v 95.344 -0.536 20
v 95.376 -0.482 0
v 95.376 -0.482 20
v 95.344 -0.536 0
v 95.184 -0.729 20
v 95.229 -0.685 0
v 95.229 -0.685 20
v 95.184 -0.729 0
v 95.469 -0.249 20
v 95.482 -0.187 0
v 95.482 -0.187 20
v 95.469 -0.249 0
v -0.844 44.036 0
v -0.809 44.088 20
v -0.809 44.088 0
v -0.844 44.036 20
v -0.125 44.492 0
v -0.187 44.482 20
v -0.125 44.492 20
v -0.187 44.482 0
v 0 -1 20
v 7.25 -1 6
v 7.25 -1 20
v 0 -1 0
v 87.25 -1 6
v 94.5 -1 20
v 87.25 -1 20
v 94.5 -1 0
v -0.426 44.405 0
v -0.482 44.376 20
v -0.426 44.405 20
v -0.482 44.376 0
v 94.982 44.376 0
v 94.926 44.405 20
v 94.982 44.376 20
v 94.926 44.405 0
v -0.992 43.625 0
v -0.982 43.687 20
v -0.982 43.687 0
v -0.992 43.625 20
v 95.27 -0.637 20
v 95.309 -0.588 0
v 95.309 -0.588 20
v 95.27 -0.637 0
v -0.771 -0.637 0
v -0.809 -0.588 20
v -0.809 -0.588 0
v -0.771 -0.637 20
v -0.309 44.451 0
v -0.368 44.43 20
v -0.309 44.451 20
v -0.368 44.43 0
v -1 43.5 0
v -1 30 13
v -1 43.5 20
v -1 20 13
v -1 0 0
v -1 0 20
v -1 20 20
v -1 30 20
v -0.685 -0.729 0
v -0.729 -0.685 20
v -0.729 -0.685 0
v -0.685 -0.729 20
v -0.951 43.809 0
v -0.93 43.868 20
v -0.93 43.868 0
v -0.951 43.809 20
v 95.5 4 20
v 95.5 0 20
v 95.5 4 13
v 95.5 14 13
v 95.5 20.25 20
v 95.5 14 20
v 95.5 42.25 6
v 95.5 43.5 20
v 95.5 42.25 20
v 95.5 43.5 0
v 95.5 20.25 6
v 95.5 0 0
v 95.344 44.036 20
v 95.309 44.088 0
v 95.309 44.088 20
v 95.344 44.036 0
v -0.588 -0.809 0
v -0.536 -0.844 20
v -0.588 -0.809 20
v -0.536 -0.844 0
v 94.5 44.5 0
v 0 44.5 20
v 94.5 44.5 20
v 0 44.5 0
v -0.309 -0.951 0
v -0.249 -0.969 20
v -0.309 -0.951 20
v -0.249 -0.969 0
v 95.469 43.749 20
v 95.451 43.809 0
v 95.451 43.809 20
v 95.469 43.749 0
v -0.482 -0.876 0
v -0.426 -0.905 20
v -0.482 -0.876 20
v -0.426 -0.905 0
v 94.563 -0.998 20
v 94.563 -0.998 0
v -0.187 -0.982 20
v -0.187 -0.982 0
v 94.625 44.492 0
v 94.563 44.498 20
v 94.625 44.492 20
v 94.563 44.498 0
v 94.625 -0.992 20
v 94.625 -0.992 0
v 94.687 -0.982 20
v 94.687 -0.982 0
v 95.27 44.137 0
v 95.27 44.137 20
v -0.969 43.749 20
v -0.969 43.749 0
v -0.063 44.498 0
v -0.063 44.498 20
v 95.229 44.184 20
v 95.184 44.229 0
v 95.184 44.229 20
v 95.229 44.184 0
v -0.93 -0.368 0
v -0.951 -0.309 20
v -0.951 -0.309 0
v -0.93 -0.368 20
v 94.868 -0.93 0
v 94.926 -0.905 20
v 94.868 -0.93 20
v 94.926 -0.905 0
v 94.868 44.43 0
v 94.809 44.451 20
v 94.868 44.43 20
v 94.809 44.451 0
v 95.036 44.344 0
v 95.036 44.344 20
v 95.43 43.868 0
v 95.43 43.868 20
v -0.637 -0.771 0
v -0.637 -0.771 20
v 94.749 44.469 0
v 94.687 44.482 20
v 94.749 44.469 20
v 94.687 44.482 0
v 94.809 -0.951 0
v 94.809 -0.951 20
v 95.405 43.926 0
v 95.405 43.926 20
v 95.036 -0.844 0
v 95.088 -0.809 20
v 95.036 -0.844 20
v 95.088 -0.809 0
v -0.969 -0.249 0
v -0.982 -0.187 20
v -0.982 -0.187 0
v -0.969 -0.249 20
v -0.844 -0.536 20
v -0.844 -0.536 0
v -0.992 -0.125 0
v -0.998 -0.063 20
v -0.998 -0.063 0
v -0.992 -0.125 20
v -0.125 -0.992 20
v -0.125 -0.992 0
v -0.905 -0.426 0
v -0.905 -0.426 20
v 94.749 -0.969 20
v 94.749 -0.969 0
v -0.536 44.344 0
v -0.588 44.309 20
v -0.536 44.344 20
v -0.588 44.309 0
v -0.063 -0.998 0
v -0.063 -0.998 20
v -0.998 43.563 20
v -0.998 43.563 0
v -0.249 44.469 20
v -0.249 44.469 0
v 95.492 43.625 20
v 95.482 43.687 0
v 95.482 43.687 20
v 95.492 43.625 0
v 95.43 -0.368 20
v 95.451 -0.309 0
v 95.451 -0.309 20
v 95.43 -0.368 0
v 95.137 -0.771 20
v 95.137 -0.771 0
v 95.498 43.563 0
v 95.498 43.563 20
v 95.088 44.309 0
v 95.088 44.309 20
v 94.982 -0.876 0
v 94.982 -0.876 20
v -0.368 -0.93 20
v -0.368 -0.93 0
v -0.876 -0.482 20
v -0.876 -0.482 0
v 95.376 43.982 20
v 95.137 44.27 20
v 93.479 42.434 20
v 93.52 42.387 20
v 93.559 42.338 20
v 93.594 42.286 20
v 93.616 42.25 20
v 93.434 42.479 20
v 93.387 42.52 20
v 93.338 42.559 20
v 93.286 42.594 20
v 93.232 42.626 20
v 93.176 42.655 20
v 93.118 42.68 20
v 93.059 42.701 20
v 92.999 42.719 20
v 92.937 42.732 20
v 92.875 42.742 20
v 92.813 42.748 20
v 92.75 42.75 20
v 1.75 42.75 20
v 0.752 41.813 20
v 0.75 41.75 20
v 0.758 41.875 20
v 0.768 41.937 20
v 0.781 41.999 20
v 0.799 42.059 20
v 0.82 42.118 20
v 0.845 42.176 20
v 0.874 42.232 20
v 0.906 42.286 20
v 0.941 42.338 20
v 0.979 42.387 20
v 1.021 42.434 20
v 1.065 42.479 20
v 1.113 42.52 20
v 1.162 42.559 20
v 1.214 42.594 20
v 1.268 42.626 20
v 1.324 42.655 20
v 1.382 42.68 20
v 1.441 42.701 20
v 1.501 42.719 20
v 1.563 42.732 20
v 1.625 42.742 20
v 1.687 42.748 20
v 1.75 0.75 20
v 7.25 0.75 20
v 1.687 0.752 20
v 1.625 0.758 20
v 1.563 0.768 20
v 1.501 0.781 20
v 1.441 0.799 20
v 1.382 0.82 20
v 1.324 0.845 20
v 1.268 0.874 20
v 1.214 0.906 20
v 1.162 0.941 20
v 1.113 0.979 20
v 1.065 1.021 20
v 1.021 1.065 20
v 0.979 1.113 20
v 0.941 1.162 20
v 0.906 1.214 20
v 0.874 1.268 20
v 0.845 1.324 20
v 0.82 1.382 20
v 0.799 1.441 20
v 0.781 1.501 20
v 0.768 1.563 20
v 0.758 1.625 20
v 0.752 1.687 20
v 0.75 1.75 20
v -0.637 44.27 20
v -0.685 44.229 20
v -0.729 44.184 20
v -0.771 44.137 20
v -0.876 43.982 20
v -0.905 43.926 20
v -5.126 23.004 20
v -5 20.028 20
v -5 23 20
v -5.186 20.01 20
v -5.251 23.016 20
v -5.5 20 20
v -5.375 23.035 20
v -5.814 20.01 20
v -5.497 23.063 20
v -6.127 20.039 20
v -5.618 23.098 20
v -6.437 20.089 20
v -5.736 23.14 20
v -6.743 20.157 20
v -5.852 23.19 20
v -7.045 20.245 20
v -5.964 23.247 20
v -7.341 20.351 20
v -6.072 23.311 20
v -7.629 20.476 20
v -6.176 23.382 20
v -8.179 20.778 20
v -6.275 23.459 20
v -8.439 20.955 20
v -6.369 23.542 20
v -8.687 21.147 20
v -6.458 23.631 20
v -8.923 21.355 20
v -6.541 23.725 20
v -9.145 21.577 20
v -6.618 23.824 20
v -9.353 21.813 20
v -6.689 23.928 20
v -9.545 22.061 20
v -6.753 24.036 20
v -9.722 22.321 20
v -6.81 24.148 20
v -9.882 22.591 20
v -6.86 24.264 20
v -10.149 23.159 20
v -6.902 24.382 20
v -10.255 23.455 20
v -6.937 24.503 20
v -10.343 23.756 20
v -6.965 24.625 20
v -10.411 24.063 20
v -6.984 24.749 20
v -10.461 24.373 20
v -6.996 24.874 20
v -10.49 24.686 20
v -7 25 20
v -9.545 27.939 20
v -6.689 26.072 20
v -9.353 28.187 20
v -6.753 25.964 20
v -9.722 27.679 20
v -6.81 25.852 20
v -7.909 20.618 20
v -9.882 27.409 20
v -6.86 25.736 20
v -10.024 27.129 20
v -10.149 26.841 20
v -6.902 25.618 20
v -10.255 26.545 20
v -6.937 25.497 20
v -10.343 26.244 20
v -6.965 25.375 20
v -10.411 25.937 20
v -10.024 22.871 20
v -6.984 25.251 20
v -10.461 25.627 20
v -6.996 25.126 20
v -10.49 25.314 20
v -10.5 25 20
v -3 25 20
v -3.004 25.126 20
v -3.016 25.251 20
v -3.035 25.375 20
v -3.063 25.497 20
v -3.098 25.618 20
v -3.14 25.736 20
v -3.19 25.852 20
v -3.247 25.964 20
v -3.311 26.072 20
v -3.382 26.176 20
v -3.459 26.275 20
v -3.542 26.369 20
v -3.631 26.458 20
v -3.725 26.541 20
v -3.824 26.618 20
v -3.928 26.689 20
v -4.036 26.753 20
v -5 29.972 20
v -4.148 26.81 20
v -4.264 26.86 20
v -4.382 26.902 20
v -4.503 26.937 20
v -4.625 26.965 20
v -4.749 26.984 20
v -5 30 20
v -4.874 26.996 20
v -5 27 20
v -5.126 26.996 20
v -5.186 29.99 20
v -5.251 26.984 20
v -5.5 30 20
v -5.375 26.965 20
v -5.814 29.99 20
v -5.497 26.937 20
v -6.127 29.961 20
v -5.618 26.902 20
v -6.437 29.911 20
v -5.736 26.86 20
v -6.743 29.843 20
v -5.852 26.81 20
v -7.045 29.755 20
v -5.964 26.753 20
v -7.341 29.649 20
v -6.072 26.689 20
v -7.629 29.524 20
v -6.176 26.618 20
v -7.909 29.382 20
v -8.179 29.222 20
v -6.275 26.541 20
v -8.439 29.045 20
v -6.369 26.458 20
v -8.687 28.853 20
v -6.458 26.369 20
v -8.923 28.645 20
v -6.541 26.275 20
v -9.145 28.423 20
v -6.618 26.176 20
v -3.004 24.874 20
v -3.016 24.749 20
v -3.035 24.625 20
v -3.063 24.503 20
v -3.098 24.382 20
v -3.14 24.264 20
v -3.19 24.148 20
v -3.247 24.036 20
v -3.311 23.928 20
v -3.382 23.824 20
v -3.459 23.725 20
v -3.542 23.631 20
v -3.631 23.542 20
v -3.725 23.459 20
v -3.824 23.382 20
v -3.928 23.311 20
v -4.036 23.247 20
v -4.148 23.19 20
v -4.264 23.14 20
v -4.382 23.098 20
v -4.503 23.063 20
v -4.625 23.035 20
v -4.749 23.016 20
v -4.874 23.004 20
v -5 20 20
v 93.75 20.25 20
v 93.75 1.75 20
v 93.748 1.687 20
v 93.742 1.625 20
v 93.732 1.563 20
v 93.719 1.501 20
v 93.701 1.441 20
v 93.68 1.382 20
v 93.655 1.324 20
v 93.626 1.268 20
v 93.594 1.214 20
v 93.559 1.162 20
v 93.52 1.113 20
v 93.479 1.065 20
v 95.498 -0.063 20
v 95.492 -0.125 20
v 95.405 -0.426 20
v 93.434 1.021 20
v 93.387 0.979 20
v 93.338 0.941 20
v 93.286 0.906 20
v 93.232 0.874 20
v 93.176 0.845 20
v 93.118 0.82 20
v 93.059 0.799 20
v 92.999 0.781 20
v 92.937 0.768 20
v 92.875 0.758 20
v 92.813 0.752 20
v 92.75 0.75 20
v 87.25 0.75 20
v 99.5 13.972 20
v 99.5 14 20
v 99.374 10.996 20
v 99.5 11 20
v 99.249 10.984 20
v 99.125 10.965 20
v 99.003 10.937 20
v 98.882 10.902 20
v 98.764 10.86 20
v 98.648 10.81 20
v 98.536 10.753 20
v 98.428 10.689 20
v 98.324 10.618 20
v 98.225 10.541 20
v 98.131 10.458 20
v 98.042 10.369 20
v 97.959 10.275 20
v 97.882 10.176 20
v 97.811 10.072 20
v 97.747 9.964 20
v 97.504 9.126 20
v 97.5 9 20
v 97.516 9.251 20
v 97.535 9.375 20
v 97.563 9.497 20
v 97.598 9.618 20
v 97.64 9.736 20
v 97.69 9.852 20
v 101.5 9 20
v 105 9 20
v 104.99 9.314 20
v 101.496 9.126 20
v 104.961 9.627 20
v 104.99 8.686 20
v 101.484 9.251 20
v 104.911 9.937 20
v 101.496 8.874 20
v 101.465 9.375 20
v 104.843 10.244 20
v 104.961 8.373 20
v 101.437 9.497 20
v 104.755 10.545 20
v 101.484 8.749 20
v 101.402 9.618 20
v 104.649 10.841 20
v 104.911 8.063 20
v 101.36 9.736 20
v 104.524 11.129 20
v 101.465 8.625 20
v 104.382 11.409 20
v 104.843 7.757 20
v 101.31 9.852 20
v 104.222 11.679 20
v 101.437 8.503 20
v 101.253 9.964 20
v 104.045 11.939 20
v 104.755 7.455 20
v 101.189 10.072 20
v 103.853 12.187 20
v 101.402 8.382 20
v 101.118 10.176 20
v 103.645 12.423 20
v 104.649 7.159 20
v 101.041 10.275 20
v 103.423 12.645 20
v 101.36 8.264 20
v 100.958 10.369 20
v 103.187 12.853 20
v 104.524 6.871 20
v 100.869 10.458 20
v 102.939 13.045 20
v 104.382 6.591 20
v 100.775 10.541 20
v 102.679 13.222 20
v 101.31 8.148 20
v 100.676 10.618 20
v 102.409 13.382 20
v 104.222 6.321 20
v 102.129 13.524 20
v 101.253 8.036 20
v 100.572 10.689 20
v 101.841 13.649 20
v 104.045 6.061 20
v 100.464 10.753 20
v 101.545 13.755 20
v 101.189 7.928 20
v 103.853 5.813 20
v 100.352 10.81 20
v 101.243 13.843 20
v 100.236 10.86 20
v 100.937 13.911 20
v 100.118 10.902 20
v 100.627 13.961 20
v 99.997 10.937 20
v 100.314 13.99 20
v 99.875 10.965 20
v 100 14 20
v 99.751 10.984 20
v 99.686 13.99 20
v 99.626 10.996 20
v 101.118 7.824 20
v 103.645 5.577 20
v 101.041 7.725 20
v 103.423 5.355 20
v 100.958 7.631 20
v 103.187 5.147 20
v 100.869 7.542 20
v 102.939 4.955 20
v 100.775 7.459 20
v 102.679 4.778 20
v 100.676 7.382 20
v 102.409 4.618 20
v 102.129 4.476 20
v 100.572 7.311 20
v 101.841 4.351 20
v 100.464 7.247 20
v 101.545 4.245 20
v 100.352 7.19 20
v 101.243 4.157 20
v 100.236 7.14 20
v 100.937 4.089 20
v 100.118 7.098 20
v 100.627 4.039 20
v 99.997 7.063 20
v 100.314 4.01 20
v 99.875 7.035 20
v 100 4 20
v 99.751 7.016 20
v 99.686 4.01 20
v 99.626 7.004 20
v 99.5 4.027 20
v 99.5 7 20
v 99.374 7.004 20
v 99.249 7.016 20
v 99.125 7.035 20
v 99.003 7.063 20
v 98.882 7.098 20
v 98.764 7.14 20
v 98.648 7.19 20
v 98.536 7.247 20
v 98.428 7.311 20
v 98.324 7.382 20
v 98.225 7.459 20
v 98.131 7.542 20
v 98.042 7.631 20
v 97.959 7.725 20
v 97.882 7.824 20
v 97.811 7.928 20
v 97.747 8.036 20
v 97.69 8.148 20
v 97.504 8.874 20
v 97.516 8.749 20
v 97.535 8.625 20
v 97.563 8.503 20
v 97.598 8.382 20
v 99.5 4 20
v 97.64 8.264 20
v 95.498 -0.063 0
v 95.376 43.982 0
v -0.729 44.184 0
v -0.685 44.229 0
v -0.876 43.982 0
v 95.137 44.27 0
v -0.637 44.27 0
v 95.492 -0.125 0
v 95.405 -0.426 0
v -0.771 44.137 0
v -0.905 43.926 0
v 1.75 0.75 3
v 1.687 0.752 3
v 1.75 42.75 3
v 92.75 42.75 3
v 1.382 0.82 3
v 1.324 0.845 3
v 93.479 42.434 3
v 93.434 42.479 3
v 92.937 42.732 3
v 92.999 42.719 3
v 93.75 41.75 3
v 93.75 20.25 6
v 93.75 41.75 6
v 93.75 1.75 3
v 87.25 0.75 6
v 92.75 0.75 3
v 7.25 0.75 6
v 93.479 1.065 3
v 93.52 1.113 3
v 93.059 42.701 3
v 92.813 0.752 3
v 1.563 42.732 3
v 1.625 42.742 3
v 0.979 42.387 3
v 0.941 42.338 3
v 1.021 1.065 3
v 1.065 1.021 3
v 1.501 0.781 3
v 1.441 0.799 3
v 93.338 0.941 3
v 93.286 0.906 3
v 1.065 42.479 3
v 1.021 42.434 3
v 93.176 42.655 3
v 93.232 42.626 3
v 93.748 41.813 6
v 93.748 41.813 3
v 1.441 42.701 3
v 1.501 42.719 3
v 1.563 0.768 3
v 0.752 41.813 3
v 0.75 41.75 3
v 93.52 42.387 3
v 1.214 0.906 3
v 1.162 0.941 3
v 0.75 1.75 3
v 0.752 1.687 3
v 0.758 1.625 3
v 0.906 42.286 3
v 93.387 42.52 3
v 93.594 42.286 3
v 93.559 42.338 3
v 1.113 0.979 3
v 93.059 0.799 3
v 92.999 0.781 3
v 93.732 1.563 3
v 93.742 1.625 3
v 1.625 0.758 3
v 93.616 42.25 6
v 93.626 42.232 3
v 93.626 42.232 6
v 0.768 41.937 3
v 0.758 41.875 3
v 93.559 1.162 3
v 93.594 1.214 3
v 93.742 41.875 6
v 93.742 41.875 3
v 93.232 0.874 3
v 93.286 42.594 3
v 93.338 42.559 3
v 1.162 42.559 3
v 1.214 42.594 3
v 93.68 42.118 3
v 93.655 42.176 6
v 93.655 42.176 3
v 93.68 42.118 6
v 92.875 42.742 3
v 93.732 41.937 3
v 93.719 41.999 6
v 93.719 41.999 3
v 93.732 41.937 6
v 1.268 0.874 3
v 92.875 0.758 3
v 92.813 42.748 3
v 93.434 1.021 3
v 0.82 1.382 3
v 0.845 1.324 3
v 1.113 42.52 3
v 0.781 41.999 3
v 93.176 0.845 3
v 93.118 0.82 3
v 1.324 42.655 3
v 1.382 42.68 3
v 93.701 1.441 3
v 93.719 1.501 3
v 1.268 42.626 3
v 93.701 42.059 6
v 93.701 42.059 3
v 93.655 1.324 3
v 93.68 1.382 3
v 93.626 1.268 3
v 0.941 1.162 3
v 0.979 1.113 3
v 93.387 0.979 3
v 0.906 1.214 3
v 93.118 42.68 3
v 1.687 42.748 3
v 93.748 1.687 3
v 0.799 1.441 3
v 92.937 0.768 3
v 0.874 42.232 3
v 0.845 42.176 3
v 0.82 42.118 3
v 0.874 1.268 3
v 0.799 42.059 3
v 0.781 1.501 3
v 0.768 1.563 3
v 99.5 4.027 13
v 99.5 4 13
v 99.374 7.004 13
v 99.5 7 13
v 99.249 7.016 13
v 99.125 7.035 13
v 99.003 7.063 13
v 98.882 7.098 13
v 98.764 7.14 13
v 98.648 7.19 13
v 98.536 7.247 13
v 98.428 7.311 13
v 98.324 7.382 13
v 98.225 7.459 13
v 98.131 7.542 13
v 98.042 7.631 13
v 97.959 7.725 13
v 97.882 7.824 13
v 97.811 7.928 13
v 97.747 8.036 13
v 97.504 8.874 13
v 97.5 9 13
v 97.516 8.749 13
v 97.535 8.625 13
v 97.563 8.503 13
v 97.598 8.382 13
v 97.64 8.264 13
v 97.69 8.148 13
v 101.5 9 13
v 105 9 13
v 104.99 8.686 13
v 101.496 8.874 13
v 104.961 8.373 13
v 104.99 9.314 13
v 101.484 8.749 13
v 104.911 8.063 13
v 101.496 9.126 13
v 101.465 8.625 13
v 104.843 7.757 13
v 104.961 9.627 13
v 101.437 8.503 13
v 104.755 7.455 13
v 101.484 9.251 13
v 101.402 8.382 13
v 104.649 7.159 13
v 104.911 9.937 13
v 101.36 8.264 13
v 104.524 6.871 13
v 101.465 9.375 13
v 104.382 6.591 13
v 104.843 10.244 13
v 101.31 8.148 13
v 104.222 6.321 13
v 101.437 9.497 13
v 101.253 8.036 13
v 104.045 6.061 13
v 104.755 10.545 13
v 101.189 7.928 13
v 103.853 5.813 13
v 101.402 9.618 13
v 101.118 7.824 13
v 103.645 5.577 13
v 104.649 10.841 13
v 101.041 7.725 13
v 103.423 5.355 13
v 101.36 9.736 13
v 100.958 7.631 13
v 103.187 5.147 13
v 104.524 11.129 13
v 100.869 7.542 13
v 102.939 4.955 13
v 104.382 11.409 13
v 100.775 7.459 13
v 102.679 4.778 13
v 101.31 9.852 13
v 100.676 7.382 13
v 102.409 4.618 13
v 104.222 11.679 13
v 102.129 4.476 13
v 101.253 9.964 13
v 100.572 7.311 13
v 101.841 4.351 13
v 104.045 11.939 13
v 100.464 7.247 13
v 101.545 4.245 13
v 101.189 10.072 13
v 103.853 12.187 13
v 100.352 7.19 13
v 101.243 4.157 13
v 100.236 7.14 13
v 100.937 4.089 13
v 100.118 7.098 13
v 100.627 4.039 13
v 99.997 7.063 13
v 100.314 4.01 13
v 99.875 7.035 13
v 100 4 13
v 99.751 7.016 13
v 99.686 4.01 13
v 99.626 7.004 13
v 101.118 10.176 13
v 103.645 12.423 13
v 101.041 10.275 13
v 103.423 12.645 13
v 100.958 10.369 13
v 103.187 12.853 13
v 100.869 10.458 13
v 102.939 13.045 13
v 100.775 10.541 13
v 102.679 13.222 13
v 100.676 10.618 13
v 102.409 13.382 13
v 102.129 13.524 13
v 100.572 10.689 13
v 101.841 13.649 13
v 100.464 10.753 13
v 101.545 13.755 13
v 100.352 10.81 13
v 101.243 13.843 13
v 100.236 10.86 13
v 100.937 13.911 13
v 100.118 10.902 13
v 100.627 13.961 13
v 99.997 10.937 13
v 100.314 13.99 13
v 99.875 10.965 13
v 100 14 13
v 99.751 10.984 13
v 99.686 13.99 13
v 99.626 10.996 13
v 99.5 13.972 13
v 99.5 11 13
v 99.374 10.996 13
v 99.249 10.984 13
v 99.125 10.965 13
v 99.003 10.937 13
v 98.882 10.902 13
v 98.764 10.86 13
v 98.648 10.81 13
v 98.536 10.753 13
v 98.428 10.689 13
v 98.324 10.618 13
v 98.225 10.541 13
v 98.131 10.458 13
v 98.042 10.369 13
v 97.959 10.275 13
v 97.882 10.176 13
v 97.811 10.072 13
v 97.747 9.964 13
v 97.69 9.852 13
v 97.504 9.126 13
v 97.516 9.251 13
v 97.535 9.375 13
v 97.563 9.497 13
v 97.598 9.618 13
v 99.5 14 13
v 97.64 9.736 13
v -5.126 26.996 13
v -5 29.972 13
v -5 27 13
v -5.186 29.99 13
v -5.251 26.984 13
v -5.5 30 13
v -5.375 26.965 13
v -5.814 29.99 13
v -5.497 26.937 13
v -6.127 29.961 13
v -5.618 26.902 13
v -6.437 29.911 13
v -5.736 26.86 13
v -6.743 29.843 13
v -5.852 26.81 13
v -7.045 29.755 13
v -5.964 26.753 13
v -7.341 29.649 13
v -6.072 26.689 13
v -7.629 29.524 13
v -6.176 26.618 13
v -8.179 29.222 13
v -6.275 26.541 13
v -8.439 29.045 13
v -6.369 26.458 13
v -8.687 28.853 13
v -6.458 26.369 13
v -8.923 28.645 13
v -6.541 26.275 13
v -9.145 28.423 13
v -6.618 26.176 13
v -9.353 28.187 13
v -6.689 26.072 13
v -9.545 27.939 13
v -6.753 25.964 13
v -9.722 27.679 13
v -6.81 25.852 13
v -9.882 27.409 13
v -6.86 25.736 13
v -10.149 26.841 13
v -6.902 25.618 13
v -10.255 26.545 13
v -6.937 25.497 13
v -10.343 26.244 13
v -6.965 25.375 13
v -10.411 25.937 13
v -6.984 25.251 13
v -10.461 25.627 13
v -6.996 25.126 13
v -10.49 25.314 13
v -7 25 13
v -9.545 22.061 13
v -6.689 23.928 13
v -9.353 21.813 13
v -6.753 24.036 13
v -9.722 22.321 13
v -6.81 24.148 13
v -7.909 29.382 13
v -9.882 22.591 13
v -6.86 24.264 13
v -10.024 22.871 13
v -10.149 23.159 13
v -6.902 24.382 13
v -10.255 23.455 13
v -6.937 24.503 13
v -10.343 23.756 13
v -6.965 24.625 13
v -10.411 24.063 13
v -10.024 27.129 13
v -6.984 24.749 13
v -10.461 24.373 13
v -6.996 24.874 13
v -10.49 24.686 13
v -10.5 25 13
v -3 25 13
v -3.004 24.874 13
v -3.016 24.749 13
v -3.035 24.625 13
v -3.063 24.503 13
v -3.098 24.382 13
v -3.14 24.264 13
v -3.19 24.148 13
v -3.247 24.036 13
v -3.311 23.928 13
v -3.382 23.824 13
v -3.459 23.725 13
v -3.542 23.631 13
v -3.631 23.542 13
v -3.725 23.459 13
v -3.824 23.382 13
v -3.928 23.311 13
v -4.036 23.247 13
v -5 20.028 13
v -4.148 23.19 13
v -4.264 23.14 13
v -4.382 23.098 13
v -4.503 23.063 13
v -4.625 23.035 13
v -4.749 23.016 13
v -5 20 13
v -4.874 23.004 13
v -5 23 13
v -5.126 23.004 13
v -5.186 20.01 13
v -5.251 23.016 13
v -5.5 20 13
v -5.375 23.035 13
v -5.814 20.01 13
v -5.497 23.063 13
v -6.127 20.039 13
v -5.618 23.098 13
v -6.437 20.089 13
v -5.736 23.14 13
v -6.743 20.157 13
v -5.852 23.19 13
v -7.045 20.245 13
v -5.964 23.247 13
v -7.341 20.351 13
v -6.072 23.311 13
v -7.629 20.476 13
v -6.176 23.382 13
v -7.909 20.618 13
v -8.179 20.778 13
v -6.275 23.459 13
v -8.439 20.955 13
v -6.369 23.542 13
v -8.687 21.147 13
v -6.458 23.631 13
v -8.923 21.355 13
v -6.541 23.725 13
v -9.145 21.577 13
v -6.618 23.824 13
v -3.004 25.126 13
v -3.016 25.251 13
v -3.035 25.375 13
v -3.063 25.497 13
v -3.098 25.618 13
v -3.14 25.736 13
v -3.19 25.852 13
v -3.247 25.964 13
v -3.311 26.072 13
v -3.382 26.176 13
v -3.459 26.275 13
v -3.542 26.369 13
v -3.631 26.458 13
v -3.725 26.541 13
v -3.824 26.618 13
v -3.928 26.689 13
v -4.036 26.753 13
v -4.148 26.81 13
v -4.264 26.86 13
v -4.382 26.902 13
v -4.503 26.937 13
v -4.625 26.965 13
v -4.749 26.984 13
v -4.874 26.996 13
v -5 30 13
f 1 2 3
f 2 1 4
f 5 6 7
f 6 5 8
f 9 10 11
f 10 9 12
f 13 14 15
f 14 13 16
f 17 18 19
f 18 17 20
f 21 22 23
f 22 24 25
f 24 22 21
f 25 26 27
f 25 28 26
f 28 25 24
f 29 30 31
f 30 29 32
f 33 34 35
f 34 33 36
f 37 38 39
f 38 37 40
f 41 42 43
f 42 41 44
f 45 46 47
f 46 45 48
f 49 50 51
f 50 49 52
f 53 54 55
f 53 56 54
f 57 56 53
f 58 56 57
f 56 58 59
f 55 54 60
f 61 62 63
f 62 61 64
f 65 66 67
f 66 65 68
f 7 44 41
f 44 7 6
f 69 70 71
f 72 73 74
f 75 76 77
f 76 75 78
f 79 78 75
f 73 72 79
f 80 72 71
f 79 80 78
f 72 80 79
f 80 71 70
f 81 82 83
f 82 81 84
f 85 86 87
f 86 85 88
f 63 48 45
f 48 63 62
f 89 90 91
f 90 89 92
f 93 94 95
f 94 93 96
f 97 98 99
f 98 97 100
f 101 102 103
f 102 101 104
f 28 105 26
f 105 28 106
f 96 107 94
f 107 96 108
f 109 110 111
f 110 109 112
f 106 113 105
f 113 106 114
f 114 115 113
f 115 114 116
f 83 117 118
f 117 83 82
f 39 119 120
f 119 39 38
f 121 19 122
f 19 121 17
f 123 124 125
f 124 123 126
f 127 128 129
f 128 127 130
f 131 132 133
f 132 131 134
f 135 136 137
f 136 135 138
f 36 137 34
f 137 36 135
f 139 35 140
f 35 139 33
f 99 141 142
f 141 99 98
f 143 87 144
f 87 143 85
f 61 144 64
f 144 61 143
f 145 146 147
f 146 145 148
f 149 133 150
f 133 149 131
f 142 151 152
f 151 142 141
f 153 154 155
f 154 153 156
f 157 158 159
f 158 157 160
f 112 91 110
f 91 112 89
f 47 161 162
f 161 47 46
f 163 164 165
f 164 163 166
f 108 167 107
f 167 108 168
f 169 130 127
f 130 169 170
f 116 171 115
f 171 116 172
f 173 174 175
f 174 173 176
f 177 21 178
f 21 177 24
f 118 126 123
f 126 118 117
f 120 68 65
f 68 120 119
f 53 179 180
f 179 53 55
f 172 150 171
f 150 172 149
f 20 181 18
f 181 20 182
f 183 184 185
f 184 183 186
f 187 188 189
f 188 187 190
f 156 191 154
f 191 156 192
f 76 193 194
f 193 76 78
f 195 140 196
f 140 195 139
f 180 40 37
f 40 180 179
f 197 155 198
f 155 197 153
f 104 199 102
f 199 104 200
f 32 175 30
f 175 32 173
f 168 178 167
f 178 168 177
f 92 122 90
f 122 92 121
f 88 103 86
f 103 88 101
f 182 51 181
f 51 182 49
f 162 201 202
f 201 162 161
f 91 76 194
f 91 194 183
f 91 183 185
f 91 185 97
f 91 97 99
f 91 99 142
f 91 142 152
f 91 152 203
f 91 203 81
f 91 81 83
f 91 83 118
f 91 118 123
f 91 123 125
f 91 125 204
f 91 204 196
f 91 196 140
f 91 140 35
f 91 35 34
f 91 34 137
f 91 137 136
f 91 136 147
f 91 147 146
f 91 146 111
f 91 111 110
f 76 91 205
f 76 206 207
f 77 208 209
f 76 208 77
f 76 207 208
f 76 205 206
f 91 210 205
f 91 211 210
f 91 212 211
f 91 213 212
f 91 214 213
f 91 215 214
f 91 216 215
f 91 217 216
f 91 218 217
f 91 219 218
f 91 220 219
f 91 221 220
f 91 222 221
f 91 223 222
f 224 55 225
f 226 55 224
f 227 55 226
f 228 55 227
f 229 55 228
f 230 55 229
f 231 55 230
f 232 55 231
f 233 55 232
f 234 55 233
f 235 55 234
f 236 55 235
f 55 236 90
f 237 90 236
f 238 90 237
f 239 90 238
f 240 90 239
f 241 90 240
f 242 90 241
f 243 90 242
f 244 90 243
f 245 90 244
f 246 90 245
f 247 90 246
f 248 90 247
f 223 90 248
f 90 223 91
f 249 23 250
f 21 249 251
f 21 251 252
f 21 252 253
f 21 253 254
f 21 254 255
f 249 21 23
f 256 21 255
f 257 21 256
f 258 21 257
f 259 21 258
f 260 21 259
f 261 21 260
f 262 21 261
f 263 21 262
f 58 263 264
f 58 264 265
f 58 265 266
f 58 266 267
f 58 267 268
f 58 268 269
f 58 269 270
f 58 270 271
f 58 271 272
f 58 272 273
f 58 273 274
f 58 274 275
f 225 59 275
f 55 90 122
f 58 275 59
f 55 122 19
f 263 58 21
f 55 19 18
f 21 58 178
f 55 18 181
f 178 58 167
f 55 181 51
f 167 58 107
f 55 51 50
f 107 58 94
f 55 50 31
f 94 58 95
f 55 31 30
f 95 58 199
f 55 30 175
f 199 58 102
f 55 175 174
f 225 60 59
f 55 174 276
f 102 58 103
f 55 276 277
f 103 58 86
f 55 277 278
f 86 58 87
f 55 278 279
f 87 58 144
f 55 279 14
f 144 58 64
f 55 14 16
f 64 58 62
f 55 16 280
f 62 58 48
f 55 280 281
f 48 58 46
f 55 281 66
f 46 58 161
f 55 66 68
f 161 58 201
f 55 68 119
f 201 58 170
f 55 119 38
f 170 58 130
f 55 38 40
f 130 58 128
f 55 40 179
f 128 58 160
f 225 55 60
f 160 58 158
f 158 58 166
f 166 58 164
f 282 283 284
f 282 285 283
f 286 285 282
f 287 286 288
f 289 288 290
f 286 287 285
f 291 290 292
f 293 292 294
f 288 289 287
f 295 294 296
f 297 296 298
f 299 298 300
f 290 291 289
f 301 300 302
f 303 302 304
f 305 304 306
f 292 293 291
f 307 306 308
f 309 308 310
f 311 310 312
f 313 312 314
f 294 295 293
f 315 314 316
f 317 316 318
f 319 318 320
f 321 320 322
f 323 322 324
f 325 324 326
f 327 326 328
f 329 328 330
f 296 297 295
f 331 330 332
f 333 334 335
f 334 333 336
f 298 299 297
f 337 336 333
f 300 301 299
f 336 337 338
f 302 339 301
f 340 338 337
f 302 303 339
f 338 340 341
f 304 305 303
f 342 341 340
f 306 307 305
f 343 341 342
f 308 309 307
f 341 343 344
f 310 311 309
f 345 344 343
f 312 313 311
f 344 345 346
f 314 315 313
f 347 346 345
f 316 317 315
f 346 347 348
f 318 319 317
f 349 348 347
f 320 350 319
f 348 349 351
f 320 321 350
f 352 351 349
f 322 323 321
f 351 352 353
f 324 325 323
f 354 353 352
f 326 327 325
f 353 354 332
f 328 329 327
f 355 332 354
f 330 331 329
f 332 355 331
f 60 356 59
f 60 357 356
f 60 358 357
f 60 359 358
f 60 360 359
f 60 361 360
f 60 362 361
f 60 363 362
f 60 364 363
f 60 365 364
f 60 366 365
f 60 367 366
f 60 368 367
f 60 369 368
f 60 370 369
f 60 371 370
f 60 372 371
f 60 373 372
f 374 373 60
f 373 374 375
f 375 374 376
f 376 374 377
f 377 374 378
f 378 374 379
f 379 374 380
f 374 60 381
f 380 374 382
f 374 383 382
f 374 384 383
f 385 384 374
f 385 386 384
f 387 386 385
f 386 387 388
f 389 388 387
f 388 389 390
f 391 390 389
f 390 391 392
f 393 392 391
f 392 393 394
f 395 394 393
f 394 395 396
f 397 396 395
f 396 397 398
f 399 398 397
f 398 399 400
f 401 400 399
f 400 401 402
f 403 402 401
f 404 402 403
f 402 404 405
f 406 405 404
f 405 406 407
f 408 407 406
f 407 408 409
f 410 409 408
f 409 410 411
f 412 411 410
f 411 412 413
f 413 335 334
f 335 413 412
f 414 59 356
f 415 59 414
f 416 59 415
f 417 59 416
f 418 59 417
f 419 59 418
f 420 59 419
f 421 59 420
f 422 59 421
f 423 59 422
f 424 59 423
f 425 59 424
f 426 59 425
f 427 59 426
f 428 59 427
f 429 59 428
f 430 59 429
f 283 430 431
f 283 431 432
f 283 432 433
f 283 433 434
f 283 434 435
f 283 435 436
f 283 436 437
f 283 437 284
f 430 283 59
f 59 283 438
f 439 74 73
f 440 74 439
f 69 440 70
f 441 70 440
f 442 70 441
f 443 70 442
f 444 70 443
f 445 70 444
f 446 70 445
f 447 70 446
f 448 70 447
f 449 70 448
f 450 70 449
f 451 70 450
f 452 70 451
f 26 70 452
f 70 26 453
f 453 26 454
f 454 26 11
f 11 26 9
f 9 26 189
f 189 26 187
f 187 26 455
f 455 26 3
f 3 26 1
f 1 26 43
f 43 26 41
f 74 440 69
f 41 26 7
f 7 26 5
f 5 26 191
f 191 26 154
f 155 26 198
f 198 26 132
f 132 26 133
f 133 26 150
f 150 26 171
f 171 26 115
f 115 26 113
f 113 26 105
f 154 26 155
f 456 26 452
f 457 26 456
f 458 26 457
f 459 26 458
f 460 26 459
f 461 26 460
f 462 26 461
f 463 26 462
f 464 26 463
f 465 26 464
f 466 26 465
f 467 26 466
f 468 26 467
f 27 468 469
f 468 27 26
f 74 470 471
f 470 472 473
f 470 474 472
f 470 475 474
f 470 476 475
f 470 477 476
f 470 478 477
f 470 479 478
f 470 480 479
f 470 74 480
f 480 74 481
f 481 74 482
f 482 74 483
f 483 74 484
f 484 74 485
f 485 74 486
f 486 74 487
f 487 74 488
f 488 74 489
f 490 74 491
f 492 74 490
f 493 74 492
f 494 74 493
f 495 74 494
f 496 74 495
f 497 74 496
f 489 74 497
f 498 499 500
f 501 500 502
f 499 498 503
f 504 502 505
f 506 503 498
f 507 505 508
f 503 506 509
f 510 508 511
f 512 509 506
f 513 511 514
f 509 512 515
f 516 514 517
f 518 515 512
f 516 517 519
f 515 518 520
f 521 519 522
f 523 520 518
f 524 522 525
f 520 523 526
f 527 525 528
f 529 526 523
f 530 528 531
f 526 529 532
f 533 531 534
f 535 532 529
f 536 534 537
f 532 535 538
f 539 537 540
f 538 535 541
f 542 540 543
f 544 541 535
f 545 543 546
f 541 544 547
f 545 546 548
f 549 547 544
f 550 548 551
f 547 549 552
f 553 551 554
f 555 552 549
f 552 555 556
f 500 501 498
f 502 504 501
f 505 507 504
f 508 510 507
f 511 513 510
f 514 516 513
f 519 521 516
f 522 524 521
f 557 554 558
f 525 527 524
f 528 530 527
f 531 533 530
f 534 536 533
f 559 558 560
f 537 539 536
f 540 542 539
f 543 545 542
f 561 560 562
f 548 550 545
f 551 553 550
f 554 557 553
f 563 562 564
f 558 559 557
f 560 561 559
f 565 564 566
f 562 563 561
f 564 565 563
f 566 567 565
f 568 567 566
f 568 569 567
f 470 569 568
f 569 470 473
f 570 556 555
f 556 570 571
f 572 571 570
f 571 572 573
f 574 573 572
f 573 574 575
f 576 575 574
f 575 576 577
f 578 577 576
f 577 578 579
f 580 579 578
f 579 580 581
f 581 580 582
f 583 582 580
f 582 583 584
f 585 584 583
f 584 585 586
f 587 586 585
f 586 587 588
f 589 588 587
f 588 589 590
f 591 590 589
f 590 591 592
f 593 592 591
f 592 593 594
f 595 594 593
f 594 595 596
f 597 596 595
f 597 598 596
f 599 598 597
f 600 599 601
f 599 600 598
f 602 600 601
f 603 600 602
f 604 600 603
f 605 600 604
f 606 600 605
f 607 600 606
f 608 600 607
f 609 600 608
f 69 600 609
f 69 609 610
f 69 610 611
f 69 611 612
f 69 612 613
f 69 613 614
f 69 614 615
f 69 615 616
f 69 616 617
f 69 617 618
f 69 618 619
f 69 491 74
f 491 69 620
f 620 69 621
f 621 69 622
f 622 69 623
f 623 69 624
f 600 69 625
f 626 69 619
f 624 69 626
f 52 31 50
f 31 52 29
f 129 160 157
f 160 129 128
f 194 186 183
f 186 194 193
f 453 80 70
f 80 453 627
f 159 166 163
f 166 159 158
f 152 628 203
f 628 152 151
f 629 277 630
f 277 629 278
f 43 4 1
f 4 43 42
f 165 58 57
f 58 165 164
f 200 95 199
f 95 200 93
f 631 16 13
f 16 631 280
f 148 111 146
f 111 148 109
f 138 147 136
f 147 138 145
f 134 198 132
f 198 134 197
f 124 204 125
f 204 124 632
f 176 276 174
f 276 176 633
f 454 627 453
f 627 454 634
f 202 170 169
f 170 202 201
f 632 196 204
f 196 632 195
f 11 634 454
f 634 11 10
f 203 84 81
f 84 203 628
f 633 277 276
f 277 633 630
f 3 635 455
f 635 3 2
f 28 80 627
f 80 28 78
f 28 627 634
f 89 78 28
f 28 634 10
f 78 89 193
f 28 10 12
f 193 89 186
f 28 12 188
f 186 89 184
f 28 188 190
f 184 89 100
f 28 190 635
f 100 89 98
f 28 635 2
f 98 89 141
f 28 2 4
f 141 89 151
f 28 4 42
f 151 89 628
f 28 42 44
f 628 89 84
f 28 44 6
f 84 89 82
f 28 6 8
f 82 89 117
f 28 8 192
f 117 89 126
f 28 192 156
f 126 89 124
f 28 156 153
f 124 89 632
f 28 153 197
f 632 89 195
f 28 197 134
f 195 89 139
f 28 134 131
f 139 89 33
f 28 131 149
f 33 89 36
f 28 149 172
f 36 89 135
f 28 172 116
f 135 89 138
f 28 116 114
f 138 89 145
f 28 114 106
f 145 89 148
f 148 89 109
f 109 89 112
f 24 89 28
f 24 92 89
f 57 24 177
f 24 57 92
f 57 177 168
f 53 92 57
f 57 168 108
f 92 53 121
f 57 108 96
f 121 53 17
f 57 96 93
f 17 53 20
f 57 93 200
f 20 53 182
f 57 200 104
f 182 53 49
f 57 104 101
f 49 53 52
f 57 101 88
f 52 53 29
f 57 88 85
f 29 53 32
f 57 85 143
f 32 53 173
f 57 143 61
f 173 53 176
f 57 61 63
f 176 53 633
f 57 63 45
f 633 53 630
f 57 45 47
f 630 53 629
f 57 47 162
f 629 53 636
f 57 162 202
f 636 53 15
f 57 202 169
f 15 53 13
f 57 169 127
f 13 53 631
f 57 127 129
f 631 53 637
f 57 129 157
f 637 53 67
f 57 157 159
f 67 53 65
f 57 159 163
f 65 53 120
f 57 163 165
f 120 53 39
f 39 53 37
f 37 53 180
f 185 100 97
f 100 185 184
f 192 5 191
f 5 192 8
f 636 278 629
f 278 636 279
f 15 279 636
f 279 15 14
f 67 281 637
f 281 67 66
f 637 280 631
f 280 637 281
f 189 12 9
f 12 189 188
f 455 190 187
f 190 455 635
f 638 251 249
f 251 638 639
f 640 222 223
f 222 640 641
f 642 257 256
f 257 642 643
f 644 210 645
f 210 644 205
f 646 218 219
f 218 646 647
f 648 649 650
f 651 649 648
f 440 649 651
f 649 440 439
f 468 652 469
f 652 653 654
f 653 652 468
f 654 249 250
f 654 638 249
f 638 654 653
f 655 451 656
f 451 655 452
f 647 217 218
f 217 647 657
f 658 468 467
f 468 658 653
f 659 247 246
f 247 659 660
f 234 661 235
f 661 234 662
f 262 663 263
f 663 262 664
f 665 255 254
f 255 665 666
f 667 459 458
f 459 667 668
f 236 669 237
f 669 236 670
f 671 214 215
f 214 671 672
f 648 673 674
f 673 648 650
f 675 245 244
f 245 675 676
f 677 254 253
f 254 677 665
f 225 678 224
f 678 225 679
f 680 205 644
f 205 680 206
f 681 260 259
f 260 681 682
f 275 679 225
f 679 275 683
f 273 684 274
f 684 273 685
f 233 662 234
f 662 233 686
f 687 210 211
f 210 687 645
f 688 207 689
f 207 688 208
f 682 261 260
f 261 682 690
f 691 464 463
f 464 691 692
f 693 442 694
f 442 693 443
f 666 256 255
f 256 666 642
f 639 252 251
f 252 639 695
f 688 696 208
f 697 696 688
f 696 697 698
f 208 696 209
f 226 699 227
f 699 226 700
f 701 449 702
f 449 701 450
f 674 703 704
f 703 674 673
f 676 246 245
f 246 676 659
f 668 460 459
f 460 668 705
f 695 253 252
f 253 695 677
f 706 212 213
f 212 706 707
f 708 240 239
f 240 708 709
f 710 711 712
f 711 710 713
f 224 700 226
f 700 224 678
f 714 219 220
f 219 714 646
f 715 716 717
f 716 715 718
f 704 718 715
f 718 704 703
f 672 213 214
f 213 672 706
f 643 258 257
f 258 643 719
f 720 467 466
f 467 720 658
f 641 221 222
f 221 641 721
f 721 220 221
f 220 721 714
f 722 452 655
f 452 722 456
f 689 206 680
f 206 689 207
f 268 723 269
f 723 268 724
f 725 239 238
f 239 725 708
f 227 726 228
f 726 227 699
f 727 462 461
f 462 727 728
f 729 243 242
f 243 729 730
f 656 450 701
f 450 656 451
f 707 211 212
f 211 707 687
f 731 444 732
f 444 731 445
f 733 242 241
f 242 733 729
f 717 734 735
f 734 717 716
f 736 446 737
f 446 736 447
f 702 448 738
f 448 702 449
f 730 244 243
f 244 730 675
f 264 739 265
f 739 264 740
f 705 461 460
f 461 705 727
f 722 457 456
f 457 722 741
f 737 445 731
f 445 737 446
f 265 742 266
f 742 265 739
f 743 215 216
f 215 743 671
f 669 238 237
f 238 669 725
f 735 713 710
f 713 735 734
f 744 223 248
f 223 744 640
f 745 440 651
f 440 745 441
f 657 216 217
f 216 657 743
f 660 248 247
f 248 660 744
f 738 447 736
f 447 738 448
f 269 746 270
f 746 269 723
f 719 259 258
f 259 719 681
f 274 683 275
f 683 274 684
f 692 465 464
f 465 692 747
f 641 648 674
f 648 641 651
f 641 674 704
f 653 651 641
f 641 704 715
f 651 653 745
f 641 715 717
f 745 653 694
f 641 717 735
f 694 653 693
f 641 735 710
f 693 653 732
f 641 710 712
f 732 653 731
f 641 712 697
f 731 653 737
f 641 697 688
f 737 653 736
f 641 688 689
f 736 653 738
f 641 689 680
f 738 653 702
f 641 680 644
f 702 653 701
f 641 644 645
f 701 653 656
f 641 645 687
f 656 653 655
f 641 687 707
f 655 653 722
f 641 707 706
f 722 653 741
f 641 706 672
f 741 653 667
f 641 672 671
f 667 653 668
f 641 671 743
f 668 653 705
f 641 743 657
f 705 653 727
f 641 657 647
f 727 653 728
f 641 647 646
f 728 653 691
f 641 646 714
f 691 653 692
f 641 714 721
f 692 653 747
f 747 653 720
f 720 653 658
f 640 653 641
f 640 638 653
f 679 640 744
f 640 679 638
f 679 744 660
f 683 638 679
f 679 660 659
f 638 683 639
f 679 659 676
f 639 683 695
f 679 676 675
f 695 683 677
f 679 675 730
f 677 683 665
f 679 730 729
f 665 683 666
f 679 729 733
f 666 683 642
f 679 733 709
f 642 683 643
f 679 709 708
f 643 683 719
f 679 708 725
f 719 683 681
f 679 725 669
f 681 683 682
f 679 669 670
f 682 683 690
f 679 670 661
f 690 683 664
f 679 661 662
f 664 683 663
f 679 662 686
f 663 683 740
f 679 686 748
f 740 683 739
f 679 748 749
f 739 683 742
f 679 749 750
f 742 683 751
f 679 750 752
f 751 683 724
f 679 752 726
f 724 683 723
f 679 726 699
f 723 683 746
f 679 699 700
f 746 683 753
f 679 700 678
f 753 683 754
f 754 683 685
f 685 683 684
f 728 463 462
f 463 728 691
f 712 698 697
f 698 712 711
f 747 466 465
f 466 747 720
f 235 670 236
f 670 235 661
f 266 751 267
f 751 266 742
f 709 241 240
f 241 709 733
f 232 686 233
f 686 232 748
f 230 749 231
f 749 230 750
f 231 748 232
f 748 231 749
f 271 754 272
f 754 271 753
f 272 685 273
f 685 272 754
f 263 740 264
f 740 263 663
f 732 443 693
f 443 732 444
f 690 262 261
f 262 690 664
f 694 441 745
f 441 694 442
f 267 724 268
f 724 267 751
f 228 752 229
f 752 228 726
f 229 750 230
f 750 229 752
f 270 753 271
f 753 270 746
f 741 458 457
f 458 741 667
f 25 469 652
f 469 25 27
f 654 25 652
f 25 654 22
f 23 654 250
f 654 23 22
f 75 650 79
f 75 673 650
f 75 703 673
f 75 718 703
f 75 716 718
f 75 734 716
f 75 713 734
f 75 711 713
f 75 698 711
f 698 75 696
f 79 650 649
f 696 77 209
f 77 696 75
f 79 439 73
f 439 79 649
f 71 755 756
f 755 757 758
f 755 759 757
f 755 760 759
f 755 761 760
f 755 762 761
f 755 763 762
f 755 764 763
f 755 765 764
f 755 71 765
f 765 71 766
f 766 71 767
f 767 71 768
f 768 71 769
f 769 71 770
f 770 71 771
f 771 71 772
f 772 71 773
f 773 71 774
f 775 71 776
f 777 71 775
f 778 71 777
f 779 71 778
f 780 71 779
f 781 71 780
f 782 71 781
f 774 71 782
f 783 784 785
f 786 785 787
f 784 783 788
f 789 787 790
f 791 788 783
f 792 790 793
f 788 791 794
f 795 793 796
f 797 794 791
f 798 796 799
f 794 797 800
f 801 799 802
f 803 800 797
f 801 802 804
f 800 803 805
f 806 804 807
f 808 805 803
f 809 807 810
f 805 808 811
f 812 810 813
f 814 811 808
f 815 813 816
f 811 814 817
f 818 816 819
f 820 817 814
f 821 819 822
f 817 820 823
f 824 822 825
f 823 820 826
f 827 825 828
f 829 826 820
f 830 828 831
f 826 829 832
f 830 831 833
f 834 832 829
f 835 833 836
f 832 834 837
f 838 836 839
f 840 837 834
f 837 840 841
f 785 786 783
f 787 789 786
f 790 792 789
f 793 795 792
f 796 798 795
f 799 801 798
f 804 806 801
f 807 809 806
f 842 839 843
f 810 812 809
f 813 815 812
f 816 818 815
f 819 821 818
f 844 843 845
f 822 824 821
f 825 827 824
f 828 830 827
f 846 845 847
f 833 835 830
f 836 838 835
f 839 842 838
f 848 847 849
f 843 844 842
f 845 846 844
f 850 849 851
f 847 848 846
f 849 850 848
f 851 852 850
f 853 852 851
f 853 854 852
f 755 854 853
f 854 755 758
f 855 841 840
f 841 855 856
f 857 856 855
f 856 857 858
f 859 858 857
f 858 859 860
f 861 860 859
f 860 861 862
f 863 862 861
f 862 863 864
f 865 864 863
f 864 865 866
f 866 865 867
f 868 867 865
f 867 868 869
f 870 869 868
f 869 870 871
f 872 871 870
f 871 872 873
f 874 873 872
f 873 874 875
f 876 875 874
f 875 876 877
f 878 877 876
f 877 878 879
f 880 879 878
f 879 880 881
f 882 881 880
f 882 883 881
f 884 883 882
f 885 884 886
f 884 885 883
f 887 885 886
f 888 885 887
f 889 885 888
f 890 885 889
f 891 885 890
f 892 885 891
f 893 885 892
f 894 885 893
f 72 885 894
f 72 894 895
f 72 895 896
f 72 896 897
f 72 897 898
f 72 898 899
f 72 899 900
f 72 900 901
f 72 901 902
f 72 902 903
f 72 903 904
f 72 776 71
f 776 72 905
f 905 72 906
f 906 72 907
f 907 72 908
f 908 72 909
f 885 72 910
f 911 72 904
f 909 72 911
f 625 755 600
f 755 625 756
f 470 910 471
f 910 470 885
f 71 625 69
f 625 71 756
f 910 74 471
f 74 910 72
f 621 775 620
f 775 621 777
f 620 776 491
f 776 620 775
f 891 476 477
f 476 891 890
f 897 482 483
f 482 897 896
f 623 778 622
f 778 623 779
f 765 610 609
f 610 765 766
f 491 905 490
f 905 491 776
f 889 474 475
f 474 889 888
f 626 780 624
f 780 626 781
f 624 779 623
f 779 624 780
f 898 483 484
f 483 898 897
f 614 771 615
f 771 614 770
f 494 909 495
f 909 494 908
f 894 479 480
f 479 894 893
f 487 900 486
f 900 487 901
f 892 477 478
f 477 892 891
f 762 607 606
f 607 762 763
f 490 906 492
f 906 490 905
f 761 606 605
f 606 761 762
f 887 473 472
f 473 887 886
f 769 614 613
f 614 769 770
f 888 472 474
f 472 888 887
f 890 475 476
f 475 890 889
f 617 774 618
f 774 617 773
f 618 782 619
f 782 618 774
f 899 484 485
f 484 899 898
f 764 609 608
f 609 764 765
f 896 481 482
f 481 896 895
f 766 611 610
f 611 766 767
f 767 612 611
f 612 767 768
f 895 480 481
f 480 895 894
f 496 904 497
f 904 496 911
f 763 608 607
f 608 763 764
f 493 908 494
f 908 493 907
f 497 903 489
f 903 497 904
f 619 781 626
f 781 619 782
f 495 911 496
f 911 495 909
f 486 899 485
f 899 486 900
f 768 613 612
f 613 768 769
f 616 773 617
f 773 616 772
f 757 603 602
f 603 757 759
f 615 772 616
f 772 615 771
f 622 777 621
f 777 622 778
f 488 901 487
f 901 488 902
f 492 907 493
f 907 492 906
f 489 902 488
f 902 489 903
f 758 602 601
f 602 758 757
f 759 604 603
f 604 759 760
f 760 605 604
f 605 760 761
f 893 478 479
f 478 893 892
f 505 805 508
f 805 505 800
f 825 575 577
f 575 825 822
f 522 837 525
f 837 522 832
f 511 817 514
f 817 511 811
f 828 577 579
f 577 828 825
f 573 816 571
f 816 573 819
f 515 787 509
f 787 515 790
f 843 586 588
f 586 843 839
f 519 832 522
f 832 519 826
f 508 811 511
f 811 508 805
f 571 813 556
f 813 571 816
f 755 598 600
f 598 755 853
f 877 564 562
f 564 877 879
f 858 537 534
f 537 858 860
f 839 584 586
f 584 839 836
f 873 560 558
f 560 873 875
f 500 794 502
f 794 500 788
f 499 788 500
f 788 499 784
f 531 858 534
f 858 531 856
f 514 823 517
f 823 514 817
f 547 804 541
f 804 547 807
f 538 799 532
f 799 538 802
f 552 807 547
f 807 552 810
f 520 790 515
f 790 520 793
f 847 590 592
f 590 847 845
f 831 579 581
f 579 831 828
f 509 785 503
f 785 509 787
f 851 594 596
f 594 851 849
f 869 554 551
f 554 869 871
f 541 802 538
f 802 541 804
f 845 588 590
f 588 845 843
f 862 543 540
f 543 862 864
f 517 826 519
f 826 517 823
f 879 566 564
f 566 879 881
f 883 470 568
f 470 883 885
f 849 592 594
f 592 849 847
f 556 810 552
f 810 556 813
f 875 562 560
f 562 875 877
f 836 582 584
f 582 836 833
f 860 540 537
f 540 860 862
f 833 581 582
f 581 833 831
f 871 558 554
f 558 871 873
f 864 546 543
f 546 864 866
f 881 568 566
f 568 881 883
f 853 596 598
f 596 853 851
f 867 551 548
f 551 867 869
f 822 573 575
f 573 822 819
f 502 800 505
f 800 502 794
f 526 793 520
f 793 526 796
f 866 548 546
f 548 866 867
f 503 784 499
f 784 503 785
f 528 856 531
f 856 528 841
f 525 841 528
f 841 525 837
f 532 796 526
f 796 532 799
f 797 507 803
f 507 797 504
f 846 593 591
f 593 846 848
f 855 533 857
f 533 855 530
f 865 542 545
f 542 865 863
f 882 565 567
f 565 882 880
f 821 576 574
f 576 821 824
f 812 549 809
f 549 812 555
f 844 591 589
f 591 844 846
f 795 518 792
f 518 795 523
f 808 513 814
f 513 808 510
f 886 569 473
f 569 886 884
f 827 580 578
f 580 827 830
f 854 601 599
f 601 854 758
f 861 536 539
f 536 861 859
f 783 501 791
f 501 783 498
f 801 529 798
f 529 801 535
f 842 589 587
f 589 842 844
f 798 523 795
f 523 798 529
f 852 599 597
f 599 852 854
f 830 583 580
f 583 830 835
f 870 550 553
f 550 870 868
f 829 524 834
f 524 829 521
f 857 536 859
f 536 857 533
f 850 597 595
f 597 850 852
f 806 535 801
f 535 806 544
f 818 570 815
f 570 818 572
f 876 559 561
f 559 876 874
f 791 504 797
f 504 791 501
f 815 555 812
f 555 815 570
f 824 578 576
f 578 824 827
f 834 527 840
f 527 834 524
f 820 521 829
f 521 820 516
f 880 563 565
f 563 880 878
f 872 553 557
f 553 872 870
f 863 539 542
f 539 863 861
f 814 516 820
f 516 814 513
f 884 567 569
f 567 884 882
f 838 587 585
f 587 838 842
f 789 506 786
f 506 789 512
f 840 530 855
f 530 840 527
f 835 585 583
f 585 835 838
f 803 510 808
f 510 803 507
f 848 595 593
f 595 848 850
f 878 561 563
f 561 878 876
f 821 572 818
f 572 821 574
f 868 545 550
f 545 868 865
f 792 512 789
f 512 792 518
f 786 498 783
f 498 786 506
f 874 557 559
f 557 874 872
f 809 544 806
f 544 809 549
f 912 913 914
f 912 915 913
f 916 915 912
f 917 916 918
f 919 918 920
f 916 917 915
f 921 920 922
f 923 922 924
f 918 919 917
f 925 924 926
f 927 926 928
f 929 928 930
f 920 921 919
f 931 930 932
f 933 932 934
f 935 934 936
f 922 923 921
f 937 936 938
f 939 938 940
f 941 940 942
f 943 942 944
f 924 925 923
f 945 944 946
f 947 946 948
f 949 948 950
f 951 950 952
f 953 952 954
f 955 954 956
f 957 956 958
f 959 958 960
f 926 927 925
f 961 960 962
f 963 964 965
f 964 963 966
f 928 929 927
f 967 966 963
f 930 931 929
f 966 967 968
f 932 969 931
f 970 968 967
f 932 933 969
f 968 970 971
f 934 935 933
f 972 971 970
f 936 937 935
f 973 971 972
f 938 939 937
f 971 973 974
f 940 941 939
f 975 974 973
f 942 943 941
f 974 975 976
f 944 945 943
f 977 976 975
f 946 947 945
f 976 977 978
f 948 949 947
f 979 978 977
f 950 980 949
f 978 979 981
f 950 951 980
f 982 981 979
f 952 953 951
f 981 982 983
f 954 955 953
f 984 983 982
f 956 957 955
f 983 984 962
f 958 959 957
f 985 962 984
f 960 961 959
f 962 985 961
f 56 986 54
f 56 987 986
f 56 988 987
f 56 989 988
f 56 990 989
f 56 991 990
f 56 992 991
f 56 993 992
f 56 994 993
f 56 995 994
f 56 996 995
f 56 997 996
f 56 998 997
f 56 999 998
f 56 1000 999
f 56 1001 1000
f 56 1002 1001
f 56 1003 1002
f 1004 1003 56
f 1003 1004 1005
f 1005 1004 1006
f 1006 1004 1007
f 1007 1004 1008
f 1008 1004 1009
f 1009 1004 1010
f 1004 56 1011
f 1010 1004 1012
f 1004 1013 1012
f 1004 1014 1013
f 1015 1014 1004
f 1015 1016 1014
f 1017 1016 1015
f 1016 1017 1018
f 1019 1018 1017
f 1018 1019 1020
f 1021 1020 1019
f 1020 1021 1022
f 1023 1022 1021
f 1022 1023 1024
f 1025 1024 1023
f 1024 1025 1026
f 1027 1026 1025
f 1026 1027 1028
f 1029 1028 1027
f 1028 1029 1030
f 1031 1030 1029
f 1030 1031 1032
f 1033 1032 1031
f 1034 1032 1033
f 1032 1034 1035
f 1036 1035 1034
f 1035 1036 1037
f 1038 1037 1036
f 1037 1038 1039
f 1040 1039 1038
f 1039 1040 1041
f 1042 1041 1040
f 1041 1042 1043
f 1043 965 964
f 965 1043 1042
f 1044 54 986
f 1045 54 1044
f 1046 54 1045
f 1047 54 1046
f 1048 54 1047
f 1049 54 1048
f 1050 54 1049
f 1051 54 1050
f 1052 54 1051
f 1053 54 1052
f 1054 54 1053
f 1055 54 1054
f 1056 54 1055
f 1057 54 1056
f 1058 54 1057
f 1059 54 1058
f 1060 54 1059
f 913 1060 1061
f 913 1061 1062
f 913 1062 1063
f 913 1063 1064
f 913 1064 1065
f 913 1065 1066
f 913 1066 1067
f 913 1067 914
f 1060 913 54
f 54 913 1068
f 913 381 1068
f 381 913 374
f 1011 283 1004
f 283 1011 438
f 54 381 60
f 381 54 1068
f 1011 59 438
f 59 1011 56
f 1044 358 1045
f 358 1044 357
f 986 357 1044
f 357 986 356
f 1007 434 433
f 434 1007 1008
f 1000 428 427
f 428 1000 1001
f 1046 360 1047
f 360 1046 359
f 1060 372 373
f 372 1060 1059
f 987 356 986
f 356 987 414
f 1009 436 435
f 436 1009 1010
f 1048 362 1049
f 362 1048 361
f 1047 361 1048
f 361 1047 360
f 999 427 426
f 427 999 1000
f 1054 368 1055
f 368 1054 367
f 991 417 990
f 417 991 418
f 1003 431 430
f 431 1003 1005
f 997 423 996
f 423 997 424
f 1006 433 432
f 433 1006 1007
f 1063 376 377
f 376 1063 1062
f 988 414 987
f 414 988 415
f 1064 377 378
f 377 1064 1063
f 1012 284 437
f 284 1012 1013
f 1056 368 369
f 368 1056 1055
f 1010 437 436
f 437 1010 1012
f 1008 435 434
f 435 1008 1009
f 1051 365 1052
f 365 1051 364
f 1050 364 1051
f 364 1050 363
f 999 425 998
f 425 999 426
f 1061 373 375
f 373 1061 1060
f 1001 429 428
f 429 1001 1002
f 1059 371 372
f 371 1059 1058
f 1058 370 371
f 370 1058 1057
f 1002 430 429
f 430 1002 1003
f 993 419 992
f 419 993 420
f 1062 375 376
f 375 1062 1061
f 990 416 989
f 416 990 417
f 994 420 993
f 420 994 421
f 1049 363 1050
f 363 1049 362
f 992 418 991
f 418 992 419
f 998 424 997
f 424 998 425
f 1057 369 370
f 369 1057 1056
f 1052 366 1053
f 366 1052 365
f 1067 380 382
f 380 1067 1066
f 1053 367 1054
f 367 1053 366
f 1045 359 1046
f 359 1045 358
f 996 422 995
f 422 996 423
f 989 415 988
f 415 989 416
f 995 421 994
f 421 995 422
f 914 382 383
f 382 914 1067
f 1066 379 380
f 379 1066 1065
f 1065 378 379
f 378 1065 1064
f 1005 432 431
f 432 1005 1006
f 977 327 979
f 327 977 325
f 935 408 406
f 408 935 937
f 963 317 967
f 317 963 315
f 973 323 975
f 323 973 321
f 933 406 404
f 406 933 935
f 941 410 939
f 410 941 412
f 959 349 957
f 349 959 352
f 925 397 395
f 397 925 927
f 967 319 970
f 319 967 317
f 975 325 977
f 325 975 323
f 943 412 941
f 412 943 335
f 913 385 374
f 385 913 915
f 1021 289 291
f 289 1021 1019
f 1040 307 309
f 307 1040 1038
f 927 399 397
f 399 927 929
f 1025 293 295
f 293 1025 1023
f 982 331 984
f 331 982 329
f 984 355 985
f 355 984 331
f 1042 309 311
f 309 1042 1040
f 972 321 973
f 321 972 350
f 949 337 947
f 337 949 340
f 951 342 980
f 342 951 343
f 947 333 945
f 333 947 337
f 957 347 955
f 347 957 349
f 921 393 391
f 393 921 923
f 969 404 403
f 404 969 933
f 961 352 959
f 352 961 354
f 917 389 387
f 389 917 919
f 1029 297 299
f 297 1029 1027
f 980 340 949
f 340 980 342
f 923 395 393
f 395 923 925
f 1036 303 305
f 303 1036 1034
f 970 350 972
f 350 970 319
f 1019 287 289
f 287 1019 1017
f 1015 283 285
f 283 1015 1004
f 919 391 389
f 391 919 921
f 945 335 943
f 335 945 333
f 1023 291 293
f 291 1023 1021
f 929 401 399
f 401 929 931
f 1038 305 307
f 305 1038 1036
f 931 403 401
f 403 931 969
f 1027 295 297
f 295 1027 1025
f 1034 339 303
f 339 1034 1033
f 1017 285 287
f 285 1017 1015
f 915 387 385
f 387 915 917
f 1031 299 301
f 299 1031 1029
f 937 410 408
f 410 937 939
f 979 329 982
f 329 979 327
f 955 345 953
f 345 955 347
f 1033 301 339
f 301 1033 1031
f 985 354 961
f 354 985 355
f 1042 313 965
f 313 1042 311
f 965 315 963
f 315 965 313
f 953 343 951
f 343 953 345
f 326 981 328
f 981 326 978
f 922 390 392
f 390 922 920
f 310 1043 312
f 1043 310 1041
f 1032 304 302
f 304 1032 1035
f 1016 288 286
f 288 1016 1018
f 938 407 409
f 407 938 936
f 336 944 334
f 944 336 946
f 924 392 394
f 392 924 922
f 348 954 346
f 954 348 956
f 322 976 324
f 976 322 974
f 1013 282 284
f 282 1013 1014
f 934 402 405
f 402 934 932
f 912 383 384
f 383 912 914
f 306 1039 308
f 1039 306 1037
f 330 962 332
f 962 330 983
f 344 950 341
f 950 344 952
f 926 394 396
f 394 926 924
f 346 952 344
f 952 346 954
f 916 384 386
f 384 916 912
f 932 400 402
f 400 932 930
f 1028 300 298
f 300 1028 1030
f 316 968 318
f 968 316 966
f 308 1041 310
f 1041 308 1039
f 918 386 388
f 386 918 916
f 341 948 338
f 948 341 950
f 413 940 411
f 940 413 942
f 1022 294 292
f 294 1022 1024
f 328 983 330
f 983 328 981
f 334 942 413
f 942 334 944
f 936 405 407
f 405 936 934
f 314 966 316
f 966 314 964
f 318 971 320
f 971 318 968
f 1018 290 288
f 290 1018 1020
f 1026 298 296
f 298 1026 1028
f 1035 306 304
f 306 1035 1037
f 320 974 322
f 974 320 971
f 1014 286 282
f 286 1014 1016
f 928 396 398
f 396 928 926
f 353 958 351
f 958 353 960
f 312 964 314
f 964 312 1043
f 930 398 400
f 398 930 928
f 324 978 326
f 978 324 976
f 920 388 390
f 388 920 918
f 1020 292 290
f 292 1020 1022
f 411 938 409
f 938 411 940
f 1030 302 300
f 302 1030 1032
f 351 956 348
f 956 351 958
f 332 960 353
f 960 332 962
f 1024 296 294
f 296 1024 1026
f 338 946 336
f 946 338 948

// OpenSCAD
$fn=100;

//Main body

difference () {
minkowski() {
translate([0,0,0])
cube([94.5,43.5,19]);
cylinder(1);
}

minkowski() {
translate([1.75,1.75,3])
cube([91,40,18]);
cylinder(1);
}


translate([7.25,-5,6])
cube([80,10,20]);

translate([90,20.25,6])
cube([10,22,18]);

}

//Screw hole 1 

translate([102,14,16.5])
rotate([0,0,180])
group() {
difference() {
//Plate 1
translate([5,5,0])
cube([5,10,7], center=true);
	
//Small hole
translate([2.5,5,0])
cylinder(r=2, h=10, center=true);

}
difference() {	
translate([2,5,0])
cylinder(r=5, h=7, center=true);

//Small hole
translate([2.5,5,0])
cylinder(r=2, h=10, center=true);

}
}

//Screw hole 2

translate([-7.5,20,16.5])
rotate([0,0,0])
group() {
difference() {
//Plate 1
translate([5,5,0])
cube([5,10,7], center=true);
	
//Small hole
translate([2.5,5,0])
cylinder(r=2, h=10, center=true);

}
difference() {	
translate([2,5,0])
cylinder(r=5, h=7, center=true);

//Small hole
translate([2.5,5,0])
cylinder(r=2, h=10, center=true);

}
}
